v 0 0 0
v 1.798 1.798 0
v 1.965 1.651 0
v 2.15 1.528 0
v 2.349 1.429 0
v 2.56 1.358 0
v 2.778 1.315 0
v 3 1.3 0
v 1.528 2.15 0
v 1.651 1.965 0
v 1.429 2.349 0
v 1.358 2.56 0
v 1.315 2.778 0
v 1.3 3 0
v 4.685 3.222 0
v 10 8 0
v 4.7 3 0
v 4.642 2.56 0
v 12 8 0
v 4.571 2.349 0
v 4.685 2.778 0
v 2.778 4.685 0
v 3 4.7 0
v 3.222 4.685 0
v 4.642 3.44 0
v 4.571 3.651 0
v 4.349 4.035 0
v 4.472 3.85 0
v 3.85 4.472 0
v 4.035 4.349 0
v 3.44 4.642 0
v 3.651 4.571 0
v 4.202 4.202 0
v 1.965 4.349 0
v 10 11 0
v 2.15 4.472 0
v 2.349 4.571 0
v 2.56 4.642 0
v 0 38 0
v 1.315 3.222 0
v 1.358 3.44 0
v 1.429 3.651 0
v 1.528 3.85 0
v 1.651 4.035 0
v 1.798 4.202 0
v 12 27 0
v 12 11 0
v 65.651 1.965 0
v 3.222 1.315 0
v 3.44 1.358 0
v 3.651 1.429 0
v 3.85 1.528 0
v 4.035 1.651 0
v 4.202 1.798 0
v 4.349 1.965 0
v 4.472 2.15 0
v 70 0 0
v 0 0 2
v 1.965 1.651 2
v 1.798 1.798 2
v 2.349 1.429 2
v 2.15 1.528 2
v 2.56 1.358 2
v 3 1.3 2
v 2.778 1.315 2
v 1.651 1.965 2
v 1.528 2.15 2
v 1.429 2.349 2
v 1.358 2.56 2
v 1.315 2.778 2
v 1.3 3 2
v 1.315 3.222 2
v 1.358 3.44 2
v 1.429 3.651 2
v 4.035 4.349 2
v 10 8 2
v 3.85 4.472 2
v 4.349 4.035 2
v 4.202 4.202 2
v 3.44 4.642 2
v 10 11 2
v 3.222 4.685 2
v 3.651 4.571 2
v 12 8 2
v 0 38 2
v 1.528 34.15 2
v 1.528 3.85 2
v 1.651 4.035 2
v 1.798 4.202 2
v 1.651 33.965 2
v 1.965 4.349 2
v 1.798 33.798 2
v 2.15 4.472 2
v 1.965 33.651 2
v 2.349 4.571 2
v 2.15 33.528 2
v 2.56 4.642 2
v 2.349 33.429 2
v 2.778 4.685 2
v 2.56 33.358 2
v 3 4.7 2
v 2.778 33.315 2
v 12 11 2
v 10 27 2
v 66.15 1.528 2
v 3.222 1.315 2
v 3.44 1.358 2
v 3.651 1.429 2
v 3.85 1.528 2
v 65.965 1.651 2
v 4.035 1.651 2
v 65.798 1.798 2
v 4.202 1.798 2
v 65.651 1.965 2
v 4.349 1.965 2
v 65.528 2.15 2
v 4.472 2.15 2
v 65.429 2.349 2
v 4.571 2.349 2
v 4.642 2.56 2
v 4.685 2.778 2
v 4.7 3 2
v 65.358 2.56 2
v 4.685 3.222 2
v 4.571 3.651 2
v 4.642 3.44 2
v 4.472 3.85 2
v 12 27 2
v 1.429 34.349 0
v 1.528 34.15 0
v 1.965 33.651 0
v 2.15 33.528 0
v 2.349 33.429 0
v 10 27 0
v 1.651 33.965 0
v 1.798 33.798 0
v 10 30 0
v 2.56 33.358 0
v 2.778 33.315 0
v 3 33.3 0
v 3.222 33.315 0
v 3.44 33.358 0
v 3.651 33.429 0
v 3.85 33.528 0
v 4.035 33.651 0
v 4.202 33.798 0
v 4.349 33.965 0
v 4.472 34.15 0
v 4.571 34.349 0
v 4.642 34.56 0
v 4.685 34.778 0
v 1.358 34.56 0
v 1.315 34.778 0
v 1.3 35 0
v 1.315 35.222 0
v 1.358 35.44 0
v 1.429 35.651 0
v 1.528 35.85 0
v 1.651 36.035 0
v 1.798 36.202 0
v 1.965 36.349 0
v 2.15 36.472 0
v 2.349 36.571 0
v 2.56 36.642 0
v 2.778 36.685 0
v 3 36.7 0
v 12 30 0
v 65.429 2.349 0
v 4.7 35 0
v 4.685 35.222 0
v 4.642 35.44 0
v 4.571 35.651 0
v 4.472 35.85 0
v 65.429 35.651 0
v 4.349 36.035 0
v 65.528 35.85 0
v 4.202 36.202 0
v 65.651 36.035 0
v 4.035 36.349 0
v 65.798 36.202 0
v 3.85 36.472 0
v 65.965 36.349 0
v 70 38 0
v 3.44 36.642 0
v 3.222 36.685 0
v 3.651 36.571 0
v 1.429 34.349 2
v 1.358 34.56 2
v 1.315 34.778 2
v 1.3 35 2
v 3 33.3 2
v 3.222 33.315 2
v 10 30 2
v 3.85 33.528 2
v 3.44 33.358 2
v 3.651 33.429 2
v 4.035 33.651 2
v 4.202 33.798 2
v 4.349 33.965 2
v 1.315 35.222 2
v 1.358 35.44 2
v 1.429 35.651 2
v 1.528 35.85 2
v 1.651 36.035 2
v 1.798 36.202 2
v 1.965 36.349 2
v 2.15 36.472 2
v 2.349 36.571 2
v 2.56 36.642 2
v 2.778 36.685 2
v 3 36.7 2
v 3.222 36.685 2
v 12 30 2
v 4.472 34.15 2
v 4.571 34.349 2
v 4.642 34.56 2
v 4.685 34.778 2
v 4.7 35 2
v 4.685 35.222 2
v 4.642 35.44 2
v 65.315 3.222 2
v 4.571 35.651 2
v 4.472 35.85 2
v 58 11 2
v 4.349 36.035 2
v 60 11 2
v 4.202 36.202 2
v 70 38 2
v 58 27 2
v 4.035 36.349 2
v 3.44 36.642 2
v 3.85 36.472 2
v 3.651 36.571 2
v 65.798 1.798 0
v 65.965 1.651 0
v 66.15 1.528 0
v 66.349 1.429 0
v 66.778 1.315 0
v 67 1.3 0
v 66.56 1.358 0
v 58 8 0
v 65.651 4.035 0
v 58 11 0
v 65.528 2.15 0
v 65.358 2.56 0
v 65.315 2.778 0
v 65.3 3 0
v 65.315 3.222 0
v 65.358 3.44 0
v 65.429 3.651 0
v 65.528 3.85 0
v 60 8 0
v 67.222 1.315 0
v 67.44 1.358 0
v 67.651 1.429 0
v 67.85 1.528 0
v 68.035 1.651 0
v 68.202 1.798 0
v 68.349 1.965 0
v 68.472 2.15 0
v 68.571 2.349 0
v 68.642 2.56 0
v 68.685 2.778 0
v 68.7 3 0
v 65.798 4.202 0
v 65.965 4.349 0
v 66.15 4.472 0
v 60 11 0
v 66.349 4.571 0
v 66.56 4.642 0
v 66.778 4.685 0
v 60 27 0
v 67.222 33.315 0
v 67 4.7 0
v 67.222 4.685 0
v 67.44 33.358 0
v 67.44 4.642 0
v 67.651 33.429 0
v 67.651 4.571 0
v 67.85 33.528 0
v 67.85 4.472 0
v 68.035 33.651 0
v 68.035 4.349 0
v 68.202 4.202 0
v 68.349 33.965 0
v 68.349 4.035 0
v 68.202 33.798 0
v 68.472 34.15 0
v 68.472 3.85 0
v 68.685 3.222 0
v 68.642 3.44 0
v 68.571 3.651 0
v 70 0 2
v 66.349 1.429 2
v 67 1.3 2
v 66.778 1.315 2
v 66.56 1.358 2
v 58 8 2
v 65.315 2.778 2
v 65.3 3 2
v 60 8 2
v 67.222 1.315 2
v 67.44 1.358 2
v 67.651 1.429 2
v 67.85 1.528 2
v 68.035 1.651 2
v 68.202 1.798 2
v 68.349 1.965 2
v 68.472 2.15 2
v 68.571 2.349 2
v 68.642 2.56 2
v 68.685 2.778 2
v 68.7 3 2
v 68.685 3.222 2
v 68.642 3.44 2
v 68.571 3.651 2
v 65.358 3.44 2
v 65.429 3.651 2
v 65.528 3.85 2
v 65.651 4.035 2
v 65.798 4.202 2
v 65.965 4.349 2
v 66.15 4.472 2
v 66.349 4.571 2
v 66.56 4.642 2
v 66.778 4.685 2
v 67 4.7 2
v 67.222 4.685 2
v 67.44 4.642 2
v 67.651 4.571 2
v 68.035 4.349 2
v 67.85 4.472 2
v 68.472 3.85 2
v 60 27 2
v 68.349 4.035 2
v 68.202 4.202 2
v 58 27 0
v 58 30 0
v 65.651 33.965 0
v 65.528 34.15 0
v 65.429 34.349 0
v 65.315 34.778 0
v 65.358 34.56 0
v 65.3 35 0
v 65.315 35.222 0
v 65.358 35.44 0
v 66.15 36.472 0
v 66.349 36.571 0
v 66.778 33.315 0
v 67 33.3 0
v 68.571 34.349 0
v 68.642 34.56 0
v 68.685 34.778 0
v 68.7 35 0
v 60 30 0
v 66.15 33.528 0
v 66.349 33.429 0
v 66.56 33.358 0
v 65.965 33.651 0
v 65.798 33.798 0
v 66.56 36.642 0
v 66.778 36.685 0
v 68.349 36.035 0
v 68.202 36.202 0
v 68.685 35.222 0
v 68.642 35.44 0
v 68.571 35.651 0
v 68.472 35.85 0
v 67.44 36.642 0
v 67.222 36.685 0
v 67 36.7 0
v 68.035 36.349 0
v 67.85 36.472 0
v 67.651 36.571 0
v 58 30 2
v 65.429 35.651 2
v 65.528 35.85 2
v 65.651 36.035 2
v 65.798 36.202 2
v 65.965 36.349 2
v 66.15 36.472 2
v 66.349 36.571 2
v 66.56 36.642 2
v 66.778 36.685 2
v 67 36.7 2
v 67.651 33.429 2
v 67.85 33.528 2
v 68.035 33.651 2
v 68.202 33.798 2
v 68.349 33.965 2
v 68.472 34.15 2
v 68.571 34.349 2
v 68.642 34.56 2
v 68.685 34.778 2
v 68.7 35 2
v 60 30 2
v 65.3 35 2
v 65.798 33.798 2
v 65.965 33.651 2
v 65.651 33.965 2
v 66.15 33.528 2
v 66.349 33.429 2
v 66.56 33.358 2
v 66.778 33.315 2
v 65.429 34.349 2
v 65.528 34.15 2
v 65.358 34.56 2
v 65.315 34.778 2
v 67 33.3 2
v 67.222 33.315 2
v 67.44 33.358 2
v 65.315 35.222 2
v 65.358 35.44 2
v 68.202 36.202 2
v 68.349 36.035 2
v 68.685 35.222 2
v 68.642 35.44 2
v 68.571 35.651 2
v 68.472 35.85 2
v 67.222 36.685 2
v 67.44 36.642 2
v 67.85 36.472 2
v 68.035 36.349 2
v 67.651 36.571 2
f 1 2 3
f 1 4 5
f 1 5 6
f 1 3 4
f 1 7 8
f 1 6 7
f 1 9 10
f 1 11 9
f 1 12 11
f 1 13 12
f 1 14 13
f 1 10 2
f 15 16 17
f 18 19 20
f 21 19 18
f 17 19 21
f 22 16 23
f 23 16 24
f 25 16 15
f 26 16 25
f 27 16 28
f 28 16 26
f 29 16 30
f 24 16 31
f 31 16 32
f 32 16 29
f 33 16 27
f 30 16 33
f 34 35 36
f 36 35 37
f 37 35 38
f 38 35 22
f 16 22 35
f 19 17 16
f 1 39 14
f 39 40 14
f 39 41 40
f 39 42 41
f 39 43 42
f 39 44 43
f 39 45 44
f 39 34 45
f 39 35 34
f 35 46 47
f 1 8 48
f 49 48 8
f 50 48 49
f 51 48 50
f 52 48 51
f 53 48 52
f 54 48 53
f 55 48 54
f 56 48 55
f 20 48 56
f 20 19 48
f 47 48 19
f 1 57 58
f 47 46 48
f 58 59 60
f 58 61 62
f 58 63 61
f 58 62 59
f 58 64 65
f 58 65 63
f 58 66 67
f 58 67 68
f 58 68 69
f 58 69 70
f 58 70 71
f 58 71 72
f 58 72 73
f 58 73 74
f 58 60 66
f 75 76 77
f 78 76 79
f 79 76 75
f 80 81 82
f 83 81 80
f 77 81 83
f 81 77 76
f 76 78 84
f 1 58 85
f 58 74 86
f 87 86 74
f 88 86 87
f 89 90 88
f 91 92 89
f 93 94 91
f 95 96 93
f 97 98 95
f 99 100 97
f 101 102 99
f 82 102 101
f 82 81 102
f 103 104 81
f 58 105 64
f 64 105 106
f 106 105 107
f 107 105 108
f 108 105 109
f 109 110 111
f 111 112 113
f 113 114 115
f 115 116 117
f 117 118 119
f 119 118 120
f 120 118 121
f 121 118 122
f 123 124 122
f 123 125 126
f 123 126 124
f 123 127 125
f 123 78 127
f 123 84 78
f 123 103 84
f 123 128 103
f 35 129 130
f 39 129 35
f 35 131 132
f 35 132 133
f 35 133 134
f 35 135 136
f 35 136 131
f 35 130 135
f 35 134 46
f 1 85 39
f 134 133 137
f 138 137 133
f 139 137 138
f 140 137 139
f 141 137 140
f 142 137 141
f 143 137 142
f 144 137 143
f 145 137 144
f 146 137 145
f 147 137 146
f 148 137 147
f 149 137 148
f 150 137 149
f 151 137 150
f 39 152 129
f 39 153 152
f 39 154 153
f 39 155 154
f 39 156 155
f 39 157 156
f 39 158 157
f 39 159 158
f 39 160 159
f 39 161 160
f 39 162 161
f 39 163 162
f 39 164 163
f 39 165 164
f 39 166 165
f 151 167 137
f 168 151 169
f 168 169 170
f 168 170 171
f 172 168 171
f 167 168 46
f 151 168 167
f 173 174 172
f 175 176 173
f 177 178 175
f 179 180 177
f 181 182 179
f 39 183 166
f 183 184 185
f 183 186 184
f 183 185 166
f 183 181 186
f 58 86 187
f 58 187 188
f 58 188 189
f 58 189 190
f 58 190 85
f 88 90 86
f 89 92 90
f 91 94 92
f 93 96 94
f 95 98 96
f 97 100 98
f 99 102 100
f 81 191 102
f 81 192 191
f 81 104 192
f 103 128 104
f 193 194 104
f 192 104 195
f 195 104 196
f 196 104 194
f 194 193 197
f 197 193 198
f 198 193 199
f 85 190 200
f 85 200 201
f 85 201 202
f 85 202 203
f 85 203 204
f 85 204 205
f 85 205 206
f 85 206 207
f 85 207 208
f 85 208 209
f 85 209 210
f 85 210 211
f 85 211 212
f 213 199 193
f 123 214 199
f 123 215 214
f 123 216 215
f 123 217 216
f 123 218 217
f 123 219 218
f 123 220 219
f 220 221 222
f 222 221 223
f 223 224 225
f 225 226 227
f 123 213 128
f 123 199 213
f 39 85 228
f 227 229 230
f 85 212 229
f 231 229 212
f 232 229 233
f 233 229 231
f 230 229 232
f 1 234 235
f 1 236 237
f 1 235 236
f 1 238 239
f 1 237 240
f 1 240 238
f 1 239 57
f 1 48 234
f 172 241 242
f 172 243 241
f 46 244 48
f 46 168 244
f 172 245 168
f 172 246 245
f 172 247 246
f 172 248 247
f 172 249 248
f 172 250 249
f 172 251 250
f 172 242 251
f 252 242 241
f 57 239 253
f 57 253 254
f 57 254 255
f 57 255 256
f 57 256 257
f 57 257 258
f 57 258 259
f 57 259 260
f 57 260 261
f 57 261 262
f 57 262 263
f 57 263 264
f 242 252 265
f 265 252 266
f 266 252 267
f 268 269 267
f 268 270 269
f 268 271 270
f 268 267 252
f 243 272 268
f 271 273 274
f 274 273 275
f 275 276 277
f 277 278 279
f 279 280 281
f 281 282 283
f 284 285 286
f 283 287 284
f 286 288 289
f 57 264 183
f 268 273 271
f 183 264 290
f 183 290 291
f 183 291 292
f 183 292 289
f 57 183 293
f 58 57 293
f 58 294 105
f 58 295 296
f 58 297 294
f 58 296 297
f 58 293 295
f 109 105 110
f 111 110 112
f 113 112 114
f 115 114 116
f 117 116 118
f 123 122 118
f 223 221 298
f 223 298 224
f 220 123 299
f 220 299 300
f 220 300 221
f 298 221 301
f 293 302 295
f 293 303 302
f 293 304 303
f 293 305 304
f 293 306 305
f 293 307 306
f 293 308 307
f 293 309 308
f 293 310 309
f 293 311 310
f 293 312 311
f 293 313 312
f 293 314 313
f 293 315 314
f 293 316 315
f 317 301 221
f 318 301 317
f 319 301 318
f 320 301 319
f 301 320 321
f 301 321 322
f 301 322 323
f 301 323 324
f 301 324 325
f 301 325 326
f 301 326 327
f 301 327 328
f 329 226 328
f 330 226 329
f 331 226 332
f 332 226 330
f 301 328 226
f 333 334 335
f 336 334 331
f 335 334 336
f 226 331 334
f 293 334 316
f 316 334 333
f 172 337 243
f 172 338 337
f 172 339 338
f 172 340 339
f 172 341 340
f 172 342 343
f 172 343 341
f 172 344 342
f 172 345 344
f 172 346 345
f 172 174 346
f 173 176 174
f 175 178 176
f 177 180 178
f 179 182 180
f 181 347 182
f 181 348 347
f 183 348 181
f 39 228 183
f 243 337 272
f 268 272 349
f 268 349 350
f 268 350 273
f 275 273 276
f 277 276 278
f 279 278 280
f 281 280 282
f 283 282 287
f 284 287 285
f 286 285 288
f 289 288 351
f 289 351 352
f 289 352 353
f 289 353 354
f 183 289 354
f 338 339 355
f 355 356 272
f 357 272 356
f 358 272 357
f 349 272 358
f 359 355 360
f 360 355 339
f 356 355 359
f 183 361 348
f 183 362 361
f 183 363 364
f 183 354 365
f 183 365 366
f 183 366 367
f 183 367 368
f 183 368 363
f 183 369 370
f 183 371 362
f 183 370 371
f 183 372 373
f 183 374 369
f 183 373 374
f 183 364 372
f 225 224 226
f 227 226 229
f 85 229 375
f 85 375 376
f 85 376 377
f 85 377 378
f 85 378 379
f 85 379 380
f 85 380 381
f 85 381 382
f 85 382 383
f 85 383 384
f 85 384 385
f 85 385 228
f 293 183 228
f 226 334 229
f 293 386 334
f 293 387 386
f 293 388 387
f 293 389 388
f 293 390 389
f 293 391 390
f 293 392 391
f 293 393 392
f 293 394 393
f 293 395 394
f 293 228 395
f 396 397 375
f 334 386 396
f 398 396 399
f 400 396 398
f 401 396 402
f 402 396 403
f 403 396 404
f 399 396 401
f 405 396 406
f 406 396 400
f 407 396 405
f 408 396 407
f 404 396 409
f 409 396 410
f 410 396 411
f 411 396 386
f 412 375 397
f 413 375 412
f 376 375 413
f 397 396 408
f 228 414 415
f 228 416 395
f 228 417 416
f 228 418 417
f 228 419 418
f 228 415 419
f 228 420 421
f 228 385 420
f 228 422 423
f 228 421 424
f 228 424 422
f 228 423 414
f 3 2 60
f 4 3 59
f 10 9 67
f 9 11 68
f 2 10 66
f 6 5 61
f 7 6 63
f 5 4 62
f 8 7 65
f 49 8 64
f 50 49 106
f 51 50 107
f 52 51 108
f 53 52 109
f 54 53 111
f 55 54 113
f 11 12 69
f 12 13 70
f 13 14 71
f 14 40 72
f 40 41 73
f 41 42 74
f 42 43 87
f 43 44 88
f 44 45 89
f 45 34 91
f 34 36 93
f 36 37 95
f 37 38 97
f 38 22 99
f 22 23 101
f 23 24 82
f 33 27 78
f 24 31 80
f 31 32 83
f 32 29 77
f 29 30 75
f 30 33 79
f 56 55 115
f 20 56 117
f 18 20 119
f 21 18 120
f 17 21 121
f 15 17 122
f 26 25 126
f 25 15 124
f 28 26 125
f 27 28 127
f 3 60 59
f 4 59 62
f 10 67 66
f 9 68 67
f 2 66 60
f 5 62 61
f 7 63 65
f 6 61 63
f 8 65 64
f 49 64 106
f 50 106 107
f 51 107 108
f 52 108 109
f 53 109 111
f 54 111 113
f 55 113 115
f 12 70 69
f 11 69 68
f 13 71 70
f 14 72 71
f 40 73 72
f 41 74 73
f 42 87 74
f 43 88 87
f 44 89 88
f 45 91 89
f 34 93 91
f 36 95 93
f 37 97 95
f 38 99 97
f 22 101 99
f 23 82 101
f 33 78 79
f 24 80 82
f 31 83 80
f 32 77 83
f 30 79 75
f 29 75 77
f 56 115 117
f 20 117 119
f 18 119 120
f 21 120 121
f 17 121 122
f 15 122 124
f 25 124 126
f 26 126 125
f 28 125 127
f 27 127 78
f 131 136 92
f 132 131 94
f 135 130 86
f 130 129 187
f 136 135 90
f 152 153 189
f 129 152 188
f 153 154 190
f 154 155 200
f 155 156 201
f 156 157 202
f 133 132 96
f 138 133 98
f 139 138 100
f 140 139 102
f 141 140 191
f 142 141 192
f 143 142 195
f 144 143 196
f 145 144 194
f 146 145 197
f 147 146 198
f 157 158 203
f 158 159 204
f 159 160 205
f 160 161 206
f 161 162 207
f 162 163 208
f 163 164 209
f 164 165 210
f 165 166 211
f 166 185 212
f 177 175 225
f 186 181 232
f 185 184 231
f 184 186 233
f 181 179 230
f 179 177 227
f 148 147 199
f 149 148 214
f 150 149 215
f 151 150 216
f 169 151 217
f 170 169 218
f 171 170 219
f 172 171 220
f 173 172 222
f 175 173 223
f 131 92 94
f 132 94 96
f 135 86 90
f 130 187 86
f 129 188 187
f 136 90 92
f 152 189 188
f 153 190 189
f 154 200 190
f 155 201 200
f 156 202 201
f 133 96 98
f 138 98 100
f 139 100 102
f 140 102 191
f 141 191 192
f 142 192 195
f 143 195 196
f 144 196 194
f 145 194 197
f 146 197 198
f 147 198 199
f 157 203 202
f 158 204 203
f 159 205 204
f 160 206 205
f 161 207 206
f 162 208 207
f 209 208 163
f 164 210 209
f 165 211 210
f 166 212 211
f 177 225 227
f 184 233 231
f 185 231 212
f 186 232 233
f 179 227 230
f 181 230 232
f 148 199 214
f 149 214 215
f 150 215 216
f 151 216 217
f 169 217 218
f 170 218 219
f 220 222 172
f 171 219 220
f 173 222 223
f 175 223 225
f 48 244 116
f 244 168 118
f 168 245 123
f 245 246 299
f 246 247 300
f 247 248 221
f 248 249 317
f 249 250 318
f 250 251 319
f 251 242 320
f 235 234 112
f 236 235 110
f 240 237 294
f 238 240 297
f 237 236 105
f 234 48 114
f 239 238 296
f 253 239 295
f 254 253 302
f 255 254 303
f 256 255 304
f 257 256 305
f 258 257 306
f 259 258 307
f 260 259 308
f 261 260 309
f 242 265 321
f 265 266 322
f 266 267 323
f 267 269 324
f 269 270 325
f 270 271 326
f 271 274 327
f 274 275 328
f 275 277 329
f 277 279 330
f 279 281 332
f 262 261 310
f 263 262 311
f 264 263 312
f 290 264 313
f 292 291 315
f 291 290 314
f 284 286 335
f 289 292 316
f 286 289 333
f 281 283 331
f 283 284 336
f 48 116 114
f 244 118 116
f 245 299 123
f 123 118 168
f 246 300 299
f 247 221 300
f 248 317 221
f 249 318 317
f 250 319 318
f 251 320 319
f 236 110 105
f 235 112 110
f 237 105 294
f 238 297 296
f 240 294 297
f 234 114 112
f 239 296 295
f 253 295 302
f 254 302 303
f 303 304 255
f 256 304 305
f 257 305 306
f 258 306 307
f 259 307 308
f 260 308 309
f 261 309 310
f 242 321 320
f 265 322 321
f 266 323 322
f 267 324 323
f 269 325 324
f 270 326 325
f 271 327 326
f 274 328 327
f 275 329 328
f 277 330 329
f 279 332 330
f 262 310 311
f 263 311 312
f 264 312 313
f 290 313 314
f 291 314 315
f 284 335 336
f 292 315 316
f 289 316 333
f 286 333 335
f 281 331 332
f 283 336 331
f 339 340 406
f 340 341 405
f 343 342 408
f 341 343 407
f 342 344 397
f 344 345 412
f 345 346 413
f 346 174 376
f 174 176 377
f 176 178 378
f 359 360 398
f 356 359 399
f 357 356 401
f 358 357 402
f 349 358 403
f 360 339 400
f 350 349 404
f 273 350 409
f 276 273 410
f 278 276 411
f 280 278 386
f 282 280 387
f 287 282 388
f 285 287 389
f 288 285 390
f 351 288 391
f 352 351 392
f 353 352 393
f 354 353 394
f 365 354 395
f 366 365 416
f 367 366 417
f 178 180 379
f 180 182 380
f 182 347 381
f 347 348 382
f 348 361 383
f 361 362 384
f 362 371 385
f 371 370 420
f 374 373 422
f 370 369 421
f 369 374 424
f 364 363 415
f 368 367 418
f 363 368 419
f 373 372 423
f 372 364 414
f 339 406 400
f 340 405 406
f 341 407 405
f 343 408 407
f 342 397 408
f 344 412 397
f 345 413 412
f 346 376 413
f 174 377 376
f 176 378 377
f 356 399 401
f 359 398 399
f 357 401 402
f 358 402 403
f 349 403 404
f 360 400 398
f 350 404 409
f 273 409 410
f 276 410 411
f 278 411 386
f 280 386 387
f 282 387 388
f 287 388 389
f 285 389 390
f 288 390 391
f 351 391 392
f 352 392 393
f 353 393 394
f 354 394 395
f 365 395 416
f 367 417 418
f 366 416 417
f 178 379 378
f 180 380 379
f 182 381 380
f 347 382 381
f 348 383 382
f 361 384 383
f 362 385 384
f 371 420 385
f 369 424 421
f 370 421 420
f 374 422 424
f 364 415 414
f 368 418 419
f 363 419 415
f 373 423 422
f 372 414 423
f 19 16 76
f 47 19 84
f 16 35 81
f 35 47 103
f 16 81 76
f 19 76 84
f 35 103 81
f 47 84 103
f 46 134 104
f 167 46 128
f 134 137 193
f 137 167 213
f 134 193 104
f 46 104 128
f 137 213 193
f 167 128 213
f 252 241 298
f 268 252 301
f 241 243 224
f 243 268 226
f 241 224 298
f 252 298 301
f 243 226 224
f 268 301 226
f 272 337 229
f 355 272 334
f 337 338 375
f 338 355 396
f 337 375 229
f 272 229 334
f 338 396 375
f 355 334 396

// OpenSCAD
// CONCEPT MOCK-UP ONLY. Units mm. Generated from parameters.json; not a fabrication-ready PCB.
difference() {
cube([70.0,38.0,2.0]);
translate([3.0, 3.0, -0.02]) { cylinder(d=3.4,h=2.04,$fn=48); }
translate([3.0, 35.0, -0.02]) { cylinder(d=3.4,h=2.04,$fn=48); }
translate([67.0, 3.0, -0.02]) { cylinder(d=3.4,h=2.04,$fn=48); }
translate([67.0, 35.0, -0.02]) { cylinder(d=3.4,h=2.04,$fn=48); }
translate([10, 8, -0.02]) { cube([2,3,2.04]); }
translate([10, 27.0, -0.02]) { cube([2,3,2.04]); }
translate([58.0, 8, -0.02]) { cube([2,3,2.04]); }
translate([58.0, 27.0, -0.02]) { cube([2,3,2.04]); }
}
